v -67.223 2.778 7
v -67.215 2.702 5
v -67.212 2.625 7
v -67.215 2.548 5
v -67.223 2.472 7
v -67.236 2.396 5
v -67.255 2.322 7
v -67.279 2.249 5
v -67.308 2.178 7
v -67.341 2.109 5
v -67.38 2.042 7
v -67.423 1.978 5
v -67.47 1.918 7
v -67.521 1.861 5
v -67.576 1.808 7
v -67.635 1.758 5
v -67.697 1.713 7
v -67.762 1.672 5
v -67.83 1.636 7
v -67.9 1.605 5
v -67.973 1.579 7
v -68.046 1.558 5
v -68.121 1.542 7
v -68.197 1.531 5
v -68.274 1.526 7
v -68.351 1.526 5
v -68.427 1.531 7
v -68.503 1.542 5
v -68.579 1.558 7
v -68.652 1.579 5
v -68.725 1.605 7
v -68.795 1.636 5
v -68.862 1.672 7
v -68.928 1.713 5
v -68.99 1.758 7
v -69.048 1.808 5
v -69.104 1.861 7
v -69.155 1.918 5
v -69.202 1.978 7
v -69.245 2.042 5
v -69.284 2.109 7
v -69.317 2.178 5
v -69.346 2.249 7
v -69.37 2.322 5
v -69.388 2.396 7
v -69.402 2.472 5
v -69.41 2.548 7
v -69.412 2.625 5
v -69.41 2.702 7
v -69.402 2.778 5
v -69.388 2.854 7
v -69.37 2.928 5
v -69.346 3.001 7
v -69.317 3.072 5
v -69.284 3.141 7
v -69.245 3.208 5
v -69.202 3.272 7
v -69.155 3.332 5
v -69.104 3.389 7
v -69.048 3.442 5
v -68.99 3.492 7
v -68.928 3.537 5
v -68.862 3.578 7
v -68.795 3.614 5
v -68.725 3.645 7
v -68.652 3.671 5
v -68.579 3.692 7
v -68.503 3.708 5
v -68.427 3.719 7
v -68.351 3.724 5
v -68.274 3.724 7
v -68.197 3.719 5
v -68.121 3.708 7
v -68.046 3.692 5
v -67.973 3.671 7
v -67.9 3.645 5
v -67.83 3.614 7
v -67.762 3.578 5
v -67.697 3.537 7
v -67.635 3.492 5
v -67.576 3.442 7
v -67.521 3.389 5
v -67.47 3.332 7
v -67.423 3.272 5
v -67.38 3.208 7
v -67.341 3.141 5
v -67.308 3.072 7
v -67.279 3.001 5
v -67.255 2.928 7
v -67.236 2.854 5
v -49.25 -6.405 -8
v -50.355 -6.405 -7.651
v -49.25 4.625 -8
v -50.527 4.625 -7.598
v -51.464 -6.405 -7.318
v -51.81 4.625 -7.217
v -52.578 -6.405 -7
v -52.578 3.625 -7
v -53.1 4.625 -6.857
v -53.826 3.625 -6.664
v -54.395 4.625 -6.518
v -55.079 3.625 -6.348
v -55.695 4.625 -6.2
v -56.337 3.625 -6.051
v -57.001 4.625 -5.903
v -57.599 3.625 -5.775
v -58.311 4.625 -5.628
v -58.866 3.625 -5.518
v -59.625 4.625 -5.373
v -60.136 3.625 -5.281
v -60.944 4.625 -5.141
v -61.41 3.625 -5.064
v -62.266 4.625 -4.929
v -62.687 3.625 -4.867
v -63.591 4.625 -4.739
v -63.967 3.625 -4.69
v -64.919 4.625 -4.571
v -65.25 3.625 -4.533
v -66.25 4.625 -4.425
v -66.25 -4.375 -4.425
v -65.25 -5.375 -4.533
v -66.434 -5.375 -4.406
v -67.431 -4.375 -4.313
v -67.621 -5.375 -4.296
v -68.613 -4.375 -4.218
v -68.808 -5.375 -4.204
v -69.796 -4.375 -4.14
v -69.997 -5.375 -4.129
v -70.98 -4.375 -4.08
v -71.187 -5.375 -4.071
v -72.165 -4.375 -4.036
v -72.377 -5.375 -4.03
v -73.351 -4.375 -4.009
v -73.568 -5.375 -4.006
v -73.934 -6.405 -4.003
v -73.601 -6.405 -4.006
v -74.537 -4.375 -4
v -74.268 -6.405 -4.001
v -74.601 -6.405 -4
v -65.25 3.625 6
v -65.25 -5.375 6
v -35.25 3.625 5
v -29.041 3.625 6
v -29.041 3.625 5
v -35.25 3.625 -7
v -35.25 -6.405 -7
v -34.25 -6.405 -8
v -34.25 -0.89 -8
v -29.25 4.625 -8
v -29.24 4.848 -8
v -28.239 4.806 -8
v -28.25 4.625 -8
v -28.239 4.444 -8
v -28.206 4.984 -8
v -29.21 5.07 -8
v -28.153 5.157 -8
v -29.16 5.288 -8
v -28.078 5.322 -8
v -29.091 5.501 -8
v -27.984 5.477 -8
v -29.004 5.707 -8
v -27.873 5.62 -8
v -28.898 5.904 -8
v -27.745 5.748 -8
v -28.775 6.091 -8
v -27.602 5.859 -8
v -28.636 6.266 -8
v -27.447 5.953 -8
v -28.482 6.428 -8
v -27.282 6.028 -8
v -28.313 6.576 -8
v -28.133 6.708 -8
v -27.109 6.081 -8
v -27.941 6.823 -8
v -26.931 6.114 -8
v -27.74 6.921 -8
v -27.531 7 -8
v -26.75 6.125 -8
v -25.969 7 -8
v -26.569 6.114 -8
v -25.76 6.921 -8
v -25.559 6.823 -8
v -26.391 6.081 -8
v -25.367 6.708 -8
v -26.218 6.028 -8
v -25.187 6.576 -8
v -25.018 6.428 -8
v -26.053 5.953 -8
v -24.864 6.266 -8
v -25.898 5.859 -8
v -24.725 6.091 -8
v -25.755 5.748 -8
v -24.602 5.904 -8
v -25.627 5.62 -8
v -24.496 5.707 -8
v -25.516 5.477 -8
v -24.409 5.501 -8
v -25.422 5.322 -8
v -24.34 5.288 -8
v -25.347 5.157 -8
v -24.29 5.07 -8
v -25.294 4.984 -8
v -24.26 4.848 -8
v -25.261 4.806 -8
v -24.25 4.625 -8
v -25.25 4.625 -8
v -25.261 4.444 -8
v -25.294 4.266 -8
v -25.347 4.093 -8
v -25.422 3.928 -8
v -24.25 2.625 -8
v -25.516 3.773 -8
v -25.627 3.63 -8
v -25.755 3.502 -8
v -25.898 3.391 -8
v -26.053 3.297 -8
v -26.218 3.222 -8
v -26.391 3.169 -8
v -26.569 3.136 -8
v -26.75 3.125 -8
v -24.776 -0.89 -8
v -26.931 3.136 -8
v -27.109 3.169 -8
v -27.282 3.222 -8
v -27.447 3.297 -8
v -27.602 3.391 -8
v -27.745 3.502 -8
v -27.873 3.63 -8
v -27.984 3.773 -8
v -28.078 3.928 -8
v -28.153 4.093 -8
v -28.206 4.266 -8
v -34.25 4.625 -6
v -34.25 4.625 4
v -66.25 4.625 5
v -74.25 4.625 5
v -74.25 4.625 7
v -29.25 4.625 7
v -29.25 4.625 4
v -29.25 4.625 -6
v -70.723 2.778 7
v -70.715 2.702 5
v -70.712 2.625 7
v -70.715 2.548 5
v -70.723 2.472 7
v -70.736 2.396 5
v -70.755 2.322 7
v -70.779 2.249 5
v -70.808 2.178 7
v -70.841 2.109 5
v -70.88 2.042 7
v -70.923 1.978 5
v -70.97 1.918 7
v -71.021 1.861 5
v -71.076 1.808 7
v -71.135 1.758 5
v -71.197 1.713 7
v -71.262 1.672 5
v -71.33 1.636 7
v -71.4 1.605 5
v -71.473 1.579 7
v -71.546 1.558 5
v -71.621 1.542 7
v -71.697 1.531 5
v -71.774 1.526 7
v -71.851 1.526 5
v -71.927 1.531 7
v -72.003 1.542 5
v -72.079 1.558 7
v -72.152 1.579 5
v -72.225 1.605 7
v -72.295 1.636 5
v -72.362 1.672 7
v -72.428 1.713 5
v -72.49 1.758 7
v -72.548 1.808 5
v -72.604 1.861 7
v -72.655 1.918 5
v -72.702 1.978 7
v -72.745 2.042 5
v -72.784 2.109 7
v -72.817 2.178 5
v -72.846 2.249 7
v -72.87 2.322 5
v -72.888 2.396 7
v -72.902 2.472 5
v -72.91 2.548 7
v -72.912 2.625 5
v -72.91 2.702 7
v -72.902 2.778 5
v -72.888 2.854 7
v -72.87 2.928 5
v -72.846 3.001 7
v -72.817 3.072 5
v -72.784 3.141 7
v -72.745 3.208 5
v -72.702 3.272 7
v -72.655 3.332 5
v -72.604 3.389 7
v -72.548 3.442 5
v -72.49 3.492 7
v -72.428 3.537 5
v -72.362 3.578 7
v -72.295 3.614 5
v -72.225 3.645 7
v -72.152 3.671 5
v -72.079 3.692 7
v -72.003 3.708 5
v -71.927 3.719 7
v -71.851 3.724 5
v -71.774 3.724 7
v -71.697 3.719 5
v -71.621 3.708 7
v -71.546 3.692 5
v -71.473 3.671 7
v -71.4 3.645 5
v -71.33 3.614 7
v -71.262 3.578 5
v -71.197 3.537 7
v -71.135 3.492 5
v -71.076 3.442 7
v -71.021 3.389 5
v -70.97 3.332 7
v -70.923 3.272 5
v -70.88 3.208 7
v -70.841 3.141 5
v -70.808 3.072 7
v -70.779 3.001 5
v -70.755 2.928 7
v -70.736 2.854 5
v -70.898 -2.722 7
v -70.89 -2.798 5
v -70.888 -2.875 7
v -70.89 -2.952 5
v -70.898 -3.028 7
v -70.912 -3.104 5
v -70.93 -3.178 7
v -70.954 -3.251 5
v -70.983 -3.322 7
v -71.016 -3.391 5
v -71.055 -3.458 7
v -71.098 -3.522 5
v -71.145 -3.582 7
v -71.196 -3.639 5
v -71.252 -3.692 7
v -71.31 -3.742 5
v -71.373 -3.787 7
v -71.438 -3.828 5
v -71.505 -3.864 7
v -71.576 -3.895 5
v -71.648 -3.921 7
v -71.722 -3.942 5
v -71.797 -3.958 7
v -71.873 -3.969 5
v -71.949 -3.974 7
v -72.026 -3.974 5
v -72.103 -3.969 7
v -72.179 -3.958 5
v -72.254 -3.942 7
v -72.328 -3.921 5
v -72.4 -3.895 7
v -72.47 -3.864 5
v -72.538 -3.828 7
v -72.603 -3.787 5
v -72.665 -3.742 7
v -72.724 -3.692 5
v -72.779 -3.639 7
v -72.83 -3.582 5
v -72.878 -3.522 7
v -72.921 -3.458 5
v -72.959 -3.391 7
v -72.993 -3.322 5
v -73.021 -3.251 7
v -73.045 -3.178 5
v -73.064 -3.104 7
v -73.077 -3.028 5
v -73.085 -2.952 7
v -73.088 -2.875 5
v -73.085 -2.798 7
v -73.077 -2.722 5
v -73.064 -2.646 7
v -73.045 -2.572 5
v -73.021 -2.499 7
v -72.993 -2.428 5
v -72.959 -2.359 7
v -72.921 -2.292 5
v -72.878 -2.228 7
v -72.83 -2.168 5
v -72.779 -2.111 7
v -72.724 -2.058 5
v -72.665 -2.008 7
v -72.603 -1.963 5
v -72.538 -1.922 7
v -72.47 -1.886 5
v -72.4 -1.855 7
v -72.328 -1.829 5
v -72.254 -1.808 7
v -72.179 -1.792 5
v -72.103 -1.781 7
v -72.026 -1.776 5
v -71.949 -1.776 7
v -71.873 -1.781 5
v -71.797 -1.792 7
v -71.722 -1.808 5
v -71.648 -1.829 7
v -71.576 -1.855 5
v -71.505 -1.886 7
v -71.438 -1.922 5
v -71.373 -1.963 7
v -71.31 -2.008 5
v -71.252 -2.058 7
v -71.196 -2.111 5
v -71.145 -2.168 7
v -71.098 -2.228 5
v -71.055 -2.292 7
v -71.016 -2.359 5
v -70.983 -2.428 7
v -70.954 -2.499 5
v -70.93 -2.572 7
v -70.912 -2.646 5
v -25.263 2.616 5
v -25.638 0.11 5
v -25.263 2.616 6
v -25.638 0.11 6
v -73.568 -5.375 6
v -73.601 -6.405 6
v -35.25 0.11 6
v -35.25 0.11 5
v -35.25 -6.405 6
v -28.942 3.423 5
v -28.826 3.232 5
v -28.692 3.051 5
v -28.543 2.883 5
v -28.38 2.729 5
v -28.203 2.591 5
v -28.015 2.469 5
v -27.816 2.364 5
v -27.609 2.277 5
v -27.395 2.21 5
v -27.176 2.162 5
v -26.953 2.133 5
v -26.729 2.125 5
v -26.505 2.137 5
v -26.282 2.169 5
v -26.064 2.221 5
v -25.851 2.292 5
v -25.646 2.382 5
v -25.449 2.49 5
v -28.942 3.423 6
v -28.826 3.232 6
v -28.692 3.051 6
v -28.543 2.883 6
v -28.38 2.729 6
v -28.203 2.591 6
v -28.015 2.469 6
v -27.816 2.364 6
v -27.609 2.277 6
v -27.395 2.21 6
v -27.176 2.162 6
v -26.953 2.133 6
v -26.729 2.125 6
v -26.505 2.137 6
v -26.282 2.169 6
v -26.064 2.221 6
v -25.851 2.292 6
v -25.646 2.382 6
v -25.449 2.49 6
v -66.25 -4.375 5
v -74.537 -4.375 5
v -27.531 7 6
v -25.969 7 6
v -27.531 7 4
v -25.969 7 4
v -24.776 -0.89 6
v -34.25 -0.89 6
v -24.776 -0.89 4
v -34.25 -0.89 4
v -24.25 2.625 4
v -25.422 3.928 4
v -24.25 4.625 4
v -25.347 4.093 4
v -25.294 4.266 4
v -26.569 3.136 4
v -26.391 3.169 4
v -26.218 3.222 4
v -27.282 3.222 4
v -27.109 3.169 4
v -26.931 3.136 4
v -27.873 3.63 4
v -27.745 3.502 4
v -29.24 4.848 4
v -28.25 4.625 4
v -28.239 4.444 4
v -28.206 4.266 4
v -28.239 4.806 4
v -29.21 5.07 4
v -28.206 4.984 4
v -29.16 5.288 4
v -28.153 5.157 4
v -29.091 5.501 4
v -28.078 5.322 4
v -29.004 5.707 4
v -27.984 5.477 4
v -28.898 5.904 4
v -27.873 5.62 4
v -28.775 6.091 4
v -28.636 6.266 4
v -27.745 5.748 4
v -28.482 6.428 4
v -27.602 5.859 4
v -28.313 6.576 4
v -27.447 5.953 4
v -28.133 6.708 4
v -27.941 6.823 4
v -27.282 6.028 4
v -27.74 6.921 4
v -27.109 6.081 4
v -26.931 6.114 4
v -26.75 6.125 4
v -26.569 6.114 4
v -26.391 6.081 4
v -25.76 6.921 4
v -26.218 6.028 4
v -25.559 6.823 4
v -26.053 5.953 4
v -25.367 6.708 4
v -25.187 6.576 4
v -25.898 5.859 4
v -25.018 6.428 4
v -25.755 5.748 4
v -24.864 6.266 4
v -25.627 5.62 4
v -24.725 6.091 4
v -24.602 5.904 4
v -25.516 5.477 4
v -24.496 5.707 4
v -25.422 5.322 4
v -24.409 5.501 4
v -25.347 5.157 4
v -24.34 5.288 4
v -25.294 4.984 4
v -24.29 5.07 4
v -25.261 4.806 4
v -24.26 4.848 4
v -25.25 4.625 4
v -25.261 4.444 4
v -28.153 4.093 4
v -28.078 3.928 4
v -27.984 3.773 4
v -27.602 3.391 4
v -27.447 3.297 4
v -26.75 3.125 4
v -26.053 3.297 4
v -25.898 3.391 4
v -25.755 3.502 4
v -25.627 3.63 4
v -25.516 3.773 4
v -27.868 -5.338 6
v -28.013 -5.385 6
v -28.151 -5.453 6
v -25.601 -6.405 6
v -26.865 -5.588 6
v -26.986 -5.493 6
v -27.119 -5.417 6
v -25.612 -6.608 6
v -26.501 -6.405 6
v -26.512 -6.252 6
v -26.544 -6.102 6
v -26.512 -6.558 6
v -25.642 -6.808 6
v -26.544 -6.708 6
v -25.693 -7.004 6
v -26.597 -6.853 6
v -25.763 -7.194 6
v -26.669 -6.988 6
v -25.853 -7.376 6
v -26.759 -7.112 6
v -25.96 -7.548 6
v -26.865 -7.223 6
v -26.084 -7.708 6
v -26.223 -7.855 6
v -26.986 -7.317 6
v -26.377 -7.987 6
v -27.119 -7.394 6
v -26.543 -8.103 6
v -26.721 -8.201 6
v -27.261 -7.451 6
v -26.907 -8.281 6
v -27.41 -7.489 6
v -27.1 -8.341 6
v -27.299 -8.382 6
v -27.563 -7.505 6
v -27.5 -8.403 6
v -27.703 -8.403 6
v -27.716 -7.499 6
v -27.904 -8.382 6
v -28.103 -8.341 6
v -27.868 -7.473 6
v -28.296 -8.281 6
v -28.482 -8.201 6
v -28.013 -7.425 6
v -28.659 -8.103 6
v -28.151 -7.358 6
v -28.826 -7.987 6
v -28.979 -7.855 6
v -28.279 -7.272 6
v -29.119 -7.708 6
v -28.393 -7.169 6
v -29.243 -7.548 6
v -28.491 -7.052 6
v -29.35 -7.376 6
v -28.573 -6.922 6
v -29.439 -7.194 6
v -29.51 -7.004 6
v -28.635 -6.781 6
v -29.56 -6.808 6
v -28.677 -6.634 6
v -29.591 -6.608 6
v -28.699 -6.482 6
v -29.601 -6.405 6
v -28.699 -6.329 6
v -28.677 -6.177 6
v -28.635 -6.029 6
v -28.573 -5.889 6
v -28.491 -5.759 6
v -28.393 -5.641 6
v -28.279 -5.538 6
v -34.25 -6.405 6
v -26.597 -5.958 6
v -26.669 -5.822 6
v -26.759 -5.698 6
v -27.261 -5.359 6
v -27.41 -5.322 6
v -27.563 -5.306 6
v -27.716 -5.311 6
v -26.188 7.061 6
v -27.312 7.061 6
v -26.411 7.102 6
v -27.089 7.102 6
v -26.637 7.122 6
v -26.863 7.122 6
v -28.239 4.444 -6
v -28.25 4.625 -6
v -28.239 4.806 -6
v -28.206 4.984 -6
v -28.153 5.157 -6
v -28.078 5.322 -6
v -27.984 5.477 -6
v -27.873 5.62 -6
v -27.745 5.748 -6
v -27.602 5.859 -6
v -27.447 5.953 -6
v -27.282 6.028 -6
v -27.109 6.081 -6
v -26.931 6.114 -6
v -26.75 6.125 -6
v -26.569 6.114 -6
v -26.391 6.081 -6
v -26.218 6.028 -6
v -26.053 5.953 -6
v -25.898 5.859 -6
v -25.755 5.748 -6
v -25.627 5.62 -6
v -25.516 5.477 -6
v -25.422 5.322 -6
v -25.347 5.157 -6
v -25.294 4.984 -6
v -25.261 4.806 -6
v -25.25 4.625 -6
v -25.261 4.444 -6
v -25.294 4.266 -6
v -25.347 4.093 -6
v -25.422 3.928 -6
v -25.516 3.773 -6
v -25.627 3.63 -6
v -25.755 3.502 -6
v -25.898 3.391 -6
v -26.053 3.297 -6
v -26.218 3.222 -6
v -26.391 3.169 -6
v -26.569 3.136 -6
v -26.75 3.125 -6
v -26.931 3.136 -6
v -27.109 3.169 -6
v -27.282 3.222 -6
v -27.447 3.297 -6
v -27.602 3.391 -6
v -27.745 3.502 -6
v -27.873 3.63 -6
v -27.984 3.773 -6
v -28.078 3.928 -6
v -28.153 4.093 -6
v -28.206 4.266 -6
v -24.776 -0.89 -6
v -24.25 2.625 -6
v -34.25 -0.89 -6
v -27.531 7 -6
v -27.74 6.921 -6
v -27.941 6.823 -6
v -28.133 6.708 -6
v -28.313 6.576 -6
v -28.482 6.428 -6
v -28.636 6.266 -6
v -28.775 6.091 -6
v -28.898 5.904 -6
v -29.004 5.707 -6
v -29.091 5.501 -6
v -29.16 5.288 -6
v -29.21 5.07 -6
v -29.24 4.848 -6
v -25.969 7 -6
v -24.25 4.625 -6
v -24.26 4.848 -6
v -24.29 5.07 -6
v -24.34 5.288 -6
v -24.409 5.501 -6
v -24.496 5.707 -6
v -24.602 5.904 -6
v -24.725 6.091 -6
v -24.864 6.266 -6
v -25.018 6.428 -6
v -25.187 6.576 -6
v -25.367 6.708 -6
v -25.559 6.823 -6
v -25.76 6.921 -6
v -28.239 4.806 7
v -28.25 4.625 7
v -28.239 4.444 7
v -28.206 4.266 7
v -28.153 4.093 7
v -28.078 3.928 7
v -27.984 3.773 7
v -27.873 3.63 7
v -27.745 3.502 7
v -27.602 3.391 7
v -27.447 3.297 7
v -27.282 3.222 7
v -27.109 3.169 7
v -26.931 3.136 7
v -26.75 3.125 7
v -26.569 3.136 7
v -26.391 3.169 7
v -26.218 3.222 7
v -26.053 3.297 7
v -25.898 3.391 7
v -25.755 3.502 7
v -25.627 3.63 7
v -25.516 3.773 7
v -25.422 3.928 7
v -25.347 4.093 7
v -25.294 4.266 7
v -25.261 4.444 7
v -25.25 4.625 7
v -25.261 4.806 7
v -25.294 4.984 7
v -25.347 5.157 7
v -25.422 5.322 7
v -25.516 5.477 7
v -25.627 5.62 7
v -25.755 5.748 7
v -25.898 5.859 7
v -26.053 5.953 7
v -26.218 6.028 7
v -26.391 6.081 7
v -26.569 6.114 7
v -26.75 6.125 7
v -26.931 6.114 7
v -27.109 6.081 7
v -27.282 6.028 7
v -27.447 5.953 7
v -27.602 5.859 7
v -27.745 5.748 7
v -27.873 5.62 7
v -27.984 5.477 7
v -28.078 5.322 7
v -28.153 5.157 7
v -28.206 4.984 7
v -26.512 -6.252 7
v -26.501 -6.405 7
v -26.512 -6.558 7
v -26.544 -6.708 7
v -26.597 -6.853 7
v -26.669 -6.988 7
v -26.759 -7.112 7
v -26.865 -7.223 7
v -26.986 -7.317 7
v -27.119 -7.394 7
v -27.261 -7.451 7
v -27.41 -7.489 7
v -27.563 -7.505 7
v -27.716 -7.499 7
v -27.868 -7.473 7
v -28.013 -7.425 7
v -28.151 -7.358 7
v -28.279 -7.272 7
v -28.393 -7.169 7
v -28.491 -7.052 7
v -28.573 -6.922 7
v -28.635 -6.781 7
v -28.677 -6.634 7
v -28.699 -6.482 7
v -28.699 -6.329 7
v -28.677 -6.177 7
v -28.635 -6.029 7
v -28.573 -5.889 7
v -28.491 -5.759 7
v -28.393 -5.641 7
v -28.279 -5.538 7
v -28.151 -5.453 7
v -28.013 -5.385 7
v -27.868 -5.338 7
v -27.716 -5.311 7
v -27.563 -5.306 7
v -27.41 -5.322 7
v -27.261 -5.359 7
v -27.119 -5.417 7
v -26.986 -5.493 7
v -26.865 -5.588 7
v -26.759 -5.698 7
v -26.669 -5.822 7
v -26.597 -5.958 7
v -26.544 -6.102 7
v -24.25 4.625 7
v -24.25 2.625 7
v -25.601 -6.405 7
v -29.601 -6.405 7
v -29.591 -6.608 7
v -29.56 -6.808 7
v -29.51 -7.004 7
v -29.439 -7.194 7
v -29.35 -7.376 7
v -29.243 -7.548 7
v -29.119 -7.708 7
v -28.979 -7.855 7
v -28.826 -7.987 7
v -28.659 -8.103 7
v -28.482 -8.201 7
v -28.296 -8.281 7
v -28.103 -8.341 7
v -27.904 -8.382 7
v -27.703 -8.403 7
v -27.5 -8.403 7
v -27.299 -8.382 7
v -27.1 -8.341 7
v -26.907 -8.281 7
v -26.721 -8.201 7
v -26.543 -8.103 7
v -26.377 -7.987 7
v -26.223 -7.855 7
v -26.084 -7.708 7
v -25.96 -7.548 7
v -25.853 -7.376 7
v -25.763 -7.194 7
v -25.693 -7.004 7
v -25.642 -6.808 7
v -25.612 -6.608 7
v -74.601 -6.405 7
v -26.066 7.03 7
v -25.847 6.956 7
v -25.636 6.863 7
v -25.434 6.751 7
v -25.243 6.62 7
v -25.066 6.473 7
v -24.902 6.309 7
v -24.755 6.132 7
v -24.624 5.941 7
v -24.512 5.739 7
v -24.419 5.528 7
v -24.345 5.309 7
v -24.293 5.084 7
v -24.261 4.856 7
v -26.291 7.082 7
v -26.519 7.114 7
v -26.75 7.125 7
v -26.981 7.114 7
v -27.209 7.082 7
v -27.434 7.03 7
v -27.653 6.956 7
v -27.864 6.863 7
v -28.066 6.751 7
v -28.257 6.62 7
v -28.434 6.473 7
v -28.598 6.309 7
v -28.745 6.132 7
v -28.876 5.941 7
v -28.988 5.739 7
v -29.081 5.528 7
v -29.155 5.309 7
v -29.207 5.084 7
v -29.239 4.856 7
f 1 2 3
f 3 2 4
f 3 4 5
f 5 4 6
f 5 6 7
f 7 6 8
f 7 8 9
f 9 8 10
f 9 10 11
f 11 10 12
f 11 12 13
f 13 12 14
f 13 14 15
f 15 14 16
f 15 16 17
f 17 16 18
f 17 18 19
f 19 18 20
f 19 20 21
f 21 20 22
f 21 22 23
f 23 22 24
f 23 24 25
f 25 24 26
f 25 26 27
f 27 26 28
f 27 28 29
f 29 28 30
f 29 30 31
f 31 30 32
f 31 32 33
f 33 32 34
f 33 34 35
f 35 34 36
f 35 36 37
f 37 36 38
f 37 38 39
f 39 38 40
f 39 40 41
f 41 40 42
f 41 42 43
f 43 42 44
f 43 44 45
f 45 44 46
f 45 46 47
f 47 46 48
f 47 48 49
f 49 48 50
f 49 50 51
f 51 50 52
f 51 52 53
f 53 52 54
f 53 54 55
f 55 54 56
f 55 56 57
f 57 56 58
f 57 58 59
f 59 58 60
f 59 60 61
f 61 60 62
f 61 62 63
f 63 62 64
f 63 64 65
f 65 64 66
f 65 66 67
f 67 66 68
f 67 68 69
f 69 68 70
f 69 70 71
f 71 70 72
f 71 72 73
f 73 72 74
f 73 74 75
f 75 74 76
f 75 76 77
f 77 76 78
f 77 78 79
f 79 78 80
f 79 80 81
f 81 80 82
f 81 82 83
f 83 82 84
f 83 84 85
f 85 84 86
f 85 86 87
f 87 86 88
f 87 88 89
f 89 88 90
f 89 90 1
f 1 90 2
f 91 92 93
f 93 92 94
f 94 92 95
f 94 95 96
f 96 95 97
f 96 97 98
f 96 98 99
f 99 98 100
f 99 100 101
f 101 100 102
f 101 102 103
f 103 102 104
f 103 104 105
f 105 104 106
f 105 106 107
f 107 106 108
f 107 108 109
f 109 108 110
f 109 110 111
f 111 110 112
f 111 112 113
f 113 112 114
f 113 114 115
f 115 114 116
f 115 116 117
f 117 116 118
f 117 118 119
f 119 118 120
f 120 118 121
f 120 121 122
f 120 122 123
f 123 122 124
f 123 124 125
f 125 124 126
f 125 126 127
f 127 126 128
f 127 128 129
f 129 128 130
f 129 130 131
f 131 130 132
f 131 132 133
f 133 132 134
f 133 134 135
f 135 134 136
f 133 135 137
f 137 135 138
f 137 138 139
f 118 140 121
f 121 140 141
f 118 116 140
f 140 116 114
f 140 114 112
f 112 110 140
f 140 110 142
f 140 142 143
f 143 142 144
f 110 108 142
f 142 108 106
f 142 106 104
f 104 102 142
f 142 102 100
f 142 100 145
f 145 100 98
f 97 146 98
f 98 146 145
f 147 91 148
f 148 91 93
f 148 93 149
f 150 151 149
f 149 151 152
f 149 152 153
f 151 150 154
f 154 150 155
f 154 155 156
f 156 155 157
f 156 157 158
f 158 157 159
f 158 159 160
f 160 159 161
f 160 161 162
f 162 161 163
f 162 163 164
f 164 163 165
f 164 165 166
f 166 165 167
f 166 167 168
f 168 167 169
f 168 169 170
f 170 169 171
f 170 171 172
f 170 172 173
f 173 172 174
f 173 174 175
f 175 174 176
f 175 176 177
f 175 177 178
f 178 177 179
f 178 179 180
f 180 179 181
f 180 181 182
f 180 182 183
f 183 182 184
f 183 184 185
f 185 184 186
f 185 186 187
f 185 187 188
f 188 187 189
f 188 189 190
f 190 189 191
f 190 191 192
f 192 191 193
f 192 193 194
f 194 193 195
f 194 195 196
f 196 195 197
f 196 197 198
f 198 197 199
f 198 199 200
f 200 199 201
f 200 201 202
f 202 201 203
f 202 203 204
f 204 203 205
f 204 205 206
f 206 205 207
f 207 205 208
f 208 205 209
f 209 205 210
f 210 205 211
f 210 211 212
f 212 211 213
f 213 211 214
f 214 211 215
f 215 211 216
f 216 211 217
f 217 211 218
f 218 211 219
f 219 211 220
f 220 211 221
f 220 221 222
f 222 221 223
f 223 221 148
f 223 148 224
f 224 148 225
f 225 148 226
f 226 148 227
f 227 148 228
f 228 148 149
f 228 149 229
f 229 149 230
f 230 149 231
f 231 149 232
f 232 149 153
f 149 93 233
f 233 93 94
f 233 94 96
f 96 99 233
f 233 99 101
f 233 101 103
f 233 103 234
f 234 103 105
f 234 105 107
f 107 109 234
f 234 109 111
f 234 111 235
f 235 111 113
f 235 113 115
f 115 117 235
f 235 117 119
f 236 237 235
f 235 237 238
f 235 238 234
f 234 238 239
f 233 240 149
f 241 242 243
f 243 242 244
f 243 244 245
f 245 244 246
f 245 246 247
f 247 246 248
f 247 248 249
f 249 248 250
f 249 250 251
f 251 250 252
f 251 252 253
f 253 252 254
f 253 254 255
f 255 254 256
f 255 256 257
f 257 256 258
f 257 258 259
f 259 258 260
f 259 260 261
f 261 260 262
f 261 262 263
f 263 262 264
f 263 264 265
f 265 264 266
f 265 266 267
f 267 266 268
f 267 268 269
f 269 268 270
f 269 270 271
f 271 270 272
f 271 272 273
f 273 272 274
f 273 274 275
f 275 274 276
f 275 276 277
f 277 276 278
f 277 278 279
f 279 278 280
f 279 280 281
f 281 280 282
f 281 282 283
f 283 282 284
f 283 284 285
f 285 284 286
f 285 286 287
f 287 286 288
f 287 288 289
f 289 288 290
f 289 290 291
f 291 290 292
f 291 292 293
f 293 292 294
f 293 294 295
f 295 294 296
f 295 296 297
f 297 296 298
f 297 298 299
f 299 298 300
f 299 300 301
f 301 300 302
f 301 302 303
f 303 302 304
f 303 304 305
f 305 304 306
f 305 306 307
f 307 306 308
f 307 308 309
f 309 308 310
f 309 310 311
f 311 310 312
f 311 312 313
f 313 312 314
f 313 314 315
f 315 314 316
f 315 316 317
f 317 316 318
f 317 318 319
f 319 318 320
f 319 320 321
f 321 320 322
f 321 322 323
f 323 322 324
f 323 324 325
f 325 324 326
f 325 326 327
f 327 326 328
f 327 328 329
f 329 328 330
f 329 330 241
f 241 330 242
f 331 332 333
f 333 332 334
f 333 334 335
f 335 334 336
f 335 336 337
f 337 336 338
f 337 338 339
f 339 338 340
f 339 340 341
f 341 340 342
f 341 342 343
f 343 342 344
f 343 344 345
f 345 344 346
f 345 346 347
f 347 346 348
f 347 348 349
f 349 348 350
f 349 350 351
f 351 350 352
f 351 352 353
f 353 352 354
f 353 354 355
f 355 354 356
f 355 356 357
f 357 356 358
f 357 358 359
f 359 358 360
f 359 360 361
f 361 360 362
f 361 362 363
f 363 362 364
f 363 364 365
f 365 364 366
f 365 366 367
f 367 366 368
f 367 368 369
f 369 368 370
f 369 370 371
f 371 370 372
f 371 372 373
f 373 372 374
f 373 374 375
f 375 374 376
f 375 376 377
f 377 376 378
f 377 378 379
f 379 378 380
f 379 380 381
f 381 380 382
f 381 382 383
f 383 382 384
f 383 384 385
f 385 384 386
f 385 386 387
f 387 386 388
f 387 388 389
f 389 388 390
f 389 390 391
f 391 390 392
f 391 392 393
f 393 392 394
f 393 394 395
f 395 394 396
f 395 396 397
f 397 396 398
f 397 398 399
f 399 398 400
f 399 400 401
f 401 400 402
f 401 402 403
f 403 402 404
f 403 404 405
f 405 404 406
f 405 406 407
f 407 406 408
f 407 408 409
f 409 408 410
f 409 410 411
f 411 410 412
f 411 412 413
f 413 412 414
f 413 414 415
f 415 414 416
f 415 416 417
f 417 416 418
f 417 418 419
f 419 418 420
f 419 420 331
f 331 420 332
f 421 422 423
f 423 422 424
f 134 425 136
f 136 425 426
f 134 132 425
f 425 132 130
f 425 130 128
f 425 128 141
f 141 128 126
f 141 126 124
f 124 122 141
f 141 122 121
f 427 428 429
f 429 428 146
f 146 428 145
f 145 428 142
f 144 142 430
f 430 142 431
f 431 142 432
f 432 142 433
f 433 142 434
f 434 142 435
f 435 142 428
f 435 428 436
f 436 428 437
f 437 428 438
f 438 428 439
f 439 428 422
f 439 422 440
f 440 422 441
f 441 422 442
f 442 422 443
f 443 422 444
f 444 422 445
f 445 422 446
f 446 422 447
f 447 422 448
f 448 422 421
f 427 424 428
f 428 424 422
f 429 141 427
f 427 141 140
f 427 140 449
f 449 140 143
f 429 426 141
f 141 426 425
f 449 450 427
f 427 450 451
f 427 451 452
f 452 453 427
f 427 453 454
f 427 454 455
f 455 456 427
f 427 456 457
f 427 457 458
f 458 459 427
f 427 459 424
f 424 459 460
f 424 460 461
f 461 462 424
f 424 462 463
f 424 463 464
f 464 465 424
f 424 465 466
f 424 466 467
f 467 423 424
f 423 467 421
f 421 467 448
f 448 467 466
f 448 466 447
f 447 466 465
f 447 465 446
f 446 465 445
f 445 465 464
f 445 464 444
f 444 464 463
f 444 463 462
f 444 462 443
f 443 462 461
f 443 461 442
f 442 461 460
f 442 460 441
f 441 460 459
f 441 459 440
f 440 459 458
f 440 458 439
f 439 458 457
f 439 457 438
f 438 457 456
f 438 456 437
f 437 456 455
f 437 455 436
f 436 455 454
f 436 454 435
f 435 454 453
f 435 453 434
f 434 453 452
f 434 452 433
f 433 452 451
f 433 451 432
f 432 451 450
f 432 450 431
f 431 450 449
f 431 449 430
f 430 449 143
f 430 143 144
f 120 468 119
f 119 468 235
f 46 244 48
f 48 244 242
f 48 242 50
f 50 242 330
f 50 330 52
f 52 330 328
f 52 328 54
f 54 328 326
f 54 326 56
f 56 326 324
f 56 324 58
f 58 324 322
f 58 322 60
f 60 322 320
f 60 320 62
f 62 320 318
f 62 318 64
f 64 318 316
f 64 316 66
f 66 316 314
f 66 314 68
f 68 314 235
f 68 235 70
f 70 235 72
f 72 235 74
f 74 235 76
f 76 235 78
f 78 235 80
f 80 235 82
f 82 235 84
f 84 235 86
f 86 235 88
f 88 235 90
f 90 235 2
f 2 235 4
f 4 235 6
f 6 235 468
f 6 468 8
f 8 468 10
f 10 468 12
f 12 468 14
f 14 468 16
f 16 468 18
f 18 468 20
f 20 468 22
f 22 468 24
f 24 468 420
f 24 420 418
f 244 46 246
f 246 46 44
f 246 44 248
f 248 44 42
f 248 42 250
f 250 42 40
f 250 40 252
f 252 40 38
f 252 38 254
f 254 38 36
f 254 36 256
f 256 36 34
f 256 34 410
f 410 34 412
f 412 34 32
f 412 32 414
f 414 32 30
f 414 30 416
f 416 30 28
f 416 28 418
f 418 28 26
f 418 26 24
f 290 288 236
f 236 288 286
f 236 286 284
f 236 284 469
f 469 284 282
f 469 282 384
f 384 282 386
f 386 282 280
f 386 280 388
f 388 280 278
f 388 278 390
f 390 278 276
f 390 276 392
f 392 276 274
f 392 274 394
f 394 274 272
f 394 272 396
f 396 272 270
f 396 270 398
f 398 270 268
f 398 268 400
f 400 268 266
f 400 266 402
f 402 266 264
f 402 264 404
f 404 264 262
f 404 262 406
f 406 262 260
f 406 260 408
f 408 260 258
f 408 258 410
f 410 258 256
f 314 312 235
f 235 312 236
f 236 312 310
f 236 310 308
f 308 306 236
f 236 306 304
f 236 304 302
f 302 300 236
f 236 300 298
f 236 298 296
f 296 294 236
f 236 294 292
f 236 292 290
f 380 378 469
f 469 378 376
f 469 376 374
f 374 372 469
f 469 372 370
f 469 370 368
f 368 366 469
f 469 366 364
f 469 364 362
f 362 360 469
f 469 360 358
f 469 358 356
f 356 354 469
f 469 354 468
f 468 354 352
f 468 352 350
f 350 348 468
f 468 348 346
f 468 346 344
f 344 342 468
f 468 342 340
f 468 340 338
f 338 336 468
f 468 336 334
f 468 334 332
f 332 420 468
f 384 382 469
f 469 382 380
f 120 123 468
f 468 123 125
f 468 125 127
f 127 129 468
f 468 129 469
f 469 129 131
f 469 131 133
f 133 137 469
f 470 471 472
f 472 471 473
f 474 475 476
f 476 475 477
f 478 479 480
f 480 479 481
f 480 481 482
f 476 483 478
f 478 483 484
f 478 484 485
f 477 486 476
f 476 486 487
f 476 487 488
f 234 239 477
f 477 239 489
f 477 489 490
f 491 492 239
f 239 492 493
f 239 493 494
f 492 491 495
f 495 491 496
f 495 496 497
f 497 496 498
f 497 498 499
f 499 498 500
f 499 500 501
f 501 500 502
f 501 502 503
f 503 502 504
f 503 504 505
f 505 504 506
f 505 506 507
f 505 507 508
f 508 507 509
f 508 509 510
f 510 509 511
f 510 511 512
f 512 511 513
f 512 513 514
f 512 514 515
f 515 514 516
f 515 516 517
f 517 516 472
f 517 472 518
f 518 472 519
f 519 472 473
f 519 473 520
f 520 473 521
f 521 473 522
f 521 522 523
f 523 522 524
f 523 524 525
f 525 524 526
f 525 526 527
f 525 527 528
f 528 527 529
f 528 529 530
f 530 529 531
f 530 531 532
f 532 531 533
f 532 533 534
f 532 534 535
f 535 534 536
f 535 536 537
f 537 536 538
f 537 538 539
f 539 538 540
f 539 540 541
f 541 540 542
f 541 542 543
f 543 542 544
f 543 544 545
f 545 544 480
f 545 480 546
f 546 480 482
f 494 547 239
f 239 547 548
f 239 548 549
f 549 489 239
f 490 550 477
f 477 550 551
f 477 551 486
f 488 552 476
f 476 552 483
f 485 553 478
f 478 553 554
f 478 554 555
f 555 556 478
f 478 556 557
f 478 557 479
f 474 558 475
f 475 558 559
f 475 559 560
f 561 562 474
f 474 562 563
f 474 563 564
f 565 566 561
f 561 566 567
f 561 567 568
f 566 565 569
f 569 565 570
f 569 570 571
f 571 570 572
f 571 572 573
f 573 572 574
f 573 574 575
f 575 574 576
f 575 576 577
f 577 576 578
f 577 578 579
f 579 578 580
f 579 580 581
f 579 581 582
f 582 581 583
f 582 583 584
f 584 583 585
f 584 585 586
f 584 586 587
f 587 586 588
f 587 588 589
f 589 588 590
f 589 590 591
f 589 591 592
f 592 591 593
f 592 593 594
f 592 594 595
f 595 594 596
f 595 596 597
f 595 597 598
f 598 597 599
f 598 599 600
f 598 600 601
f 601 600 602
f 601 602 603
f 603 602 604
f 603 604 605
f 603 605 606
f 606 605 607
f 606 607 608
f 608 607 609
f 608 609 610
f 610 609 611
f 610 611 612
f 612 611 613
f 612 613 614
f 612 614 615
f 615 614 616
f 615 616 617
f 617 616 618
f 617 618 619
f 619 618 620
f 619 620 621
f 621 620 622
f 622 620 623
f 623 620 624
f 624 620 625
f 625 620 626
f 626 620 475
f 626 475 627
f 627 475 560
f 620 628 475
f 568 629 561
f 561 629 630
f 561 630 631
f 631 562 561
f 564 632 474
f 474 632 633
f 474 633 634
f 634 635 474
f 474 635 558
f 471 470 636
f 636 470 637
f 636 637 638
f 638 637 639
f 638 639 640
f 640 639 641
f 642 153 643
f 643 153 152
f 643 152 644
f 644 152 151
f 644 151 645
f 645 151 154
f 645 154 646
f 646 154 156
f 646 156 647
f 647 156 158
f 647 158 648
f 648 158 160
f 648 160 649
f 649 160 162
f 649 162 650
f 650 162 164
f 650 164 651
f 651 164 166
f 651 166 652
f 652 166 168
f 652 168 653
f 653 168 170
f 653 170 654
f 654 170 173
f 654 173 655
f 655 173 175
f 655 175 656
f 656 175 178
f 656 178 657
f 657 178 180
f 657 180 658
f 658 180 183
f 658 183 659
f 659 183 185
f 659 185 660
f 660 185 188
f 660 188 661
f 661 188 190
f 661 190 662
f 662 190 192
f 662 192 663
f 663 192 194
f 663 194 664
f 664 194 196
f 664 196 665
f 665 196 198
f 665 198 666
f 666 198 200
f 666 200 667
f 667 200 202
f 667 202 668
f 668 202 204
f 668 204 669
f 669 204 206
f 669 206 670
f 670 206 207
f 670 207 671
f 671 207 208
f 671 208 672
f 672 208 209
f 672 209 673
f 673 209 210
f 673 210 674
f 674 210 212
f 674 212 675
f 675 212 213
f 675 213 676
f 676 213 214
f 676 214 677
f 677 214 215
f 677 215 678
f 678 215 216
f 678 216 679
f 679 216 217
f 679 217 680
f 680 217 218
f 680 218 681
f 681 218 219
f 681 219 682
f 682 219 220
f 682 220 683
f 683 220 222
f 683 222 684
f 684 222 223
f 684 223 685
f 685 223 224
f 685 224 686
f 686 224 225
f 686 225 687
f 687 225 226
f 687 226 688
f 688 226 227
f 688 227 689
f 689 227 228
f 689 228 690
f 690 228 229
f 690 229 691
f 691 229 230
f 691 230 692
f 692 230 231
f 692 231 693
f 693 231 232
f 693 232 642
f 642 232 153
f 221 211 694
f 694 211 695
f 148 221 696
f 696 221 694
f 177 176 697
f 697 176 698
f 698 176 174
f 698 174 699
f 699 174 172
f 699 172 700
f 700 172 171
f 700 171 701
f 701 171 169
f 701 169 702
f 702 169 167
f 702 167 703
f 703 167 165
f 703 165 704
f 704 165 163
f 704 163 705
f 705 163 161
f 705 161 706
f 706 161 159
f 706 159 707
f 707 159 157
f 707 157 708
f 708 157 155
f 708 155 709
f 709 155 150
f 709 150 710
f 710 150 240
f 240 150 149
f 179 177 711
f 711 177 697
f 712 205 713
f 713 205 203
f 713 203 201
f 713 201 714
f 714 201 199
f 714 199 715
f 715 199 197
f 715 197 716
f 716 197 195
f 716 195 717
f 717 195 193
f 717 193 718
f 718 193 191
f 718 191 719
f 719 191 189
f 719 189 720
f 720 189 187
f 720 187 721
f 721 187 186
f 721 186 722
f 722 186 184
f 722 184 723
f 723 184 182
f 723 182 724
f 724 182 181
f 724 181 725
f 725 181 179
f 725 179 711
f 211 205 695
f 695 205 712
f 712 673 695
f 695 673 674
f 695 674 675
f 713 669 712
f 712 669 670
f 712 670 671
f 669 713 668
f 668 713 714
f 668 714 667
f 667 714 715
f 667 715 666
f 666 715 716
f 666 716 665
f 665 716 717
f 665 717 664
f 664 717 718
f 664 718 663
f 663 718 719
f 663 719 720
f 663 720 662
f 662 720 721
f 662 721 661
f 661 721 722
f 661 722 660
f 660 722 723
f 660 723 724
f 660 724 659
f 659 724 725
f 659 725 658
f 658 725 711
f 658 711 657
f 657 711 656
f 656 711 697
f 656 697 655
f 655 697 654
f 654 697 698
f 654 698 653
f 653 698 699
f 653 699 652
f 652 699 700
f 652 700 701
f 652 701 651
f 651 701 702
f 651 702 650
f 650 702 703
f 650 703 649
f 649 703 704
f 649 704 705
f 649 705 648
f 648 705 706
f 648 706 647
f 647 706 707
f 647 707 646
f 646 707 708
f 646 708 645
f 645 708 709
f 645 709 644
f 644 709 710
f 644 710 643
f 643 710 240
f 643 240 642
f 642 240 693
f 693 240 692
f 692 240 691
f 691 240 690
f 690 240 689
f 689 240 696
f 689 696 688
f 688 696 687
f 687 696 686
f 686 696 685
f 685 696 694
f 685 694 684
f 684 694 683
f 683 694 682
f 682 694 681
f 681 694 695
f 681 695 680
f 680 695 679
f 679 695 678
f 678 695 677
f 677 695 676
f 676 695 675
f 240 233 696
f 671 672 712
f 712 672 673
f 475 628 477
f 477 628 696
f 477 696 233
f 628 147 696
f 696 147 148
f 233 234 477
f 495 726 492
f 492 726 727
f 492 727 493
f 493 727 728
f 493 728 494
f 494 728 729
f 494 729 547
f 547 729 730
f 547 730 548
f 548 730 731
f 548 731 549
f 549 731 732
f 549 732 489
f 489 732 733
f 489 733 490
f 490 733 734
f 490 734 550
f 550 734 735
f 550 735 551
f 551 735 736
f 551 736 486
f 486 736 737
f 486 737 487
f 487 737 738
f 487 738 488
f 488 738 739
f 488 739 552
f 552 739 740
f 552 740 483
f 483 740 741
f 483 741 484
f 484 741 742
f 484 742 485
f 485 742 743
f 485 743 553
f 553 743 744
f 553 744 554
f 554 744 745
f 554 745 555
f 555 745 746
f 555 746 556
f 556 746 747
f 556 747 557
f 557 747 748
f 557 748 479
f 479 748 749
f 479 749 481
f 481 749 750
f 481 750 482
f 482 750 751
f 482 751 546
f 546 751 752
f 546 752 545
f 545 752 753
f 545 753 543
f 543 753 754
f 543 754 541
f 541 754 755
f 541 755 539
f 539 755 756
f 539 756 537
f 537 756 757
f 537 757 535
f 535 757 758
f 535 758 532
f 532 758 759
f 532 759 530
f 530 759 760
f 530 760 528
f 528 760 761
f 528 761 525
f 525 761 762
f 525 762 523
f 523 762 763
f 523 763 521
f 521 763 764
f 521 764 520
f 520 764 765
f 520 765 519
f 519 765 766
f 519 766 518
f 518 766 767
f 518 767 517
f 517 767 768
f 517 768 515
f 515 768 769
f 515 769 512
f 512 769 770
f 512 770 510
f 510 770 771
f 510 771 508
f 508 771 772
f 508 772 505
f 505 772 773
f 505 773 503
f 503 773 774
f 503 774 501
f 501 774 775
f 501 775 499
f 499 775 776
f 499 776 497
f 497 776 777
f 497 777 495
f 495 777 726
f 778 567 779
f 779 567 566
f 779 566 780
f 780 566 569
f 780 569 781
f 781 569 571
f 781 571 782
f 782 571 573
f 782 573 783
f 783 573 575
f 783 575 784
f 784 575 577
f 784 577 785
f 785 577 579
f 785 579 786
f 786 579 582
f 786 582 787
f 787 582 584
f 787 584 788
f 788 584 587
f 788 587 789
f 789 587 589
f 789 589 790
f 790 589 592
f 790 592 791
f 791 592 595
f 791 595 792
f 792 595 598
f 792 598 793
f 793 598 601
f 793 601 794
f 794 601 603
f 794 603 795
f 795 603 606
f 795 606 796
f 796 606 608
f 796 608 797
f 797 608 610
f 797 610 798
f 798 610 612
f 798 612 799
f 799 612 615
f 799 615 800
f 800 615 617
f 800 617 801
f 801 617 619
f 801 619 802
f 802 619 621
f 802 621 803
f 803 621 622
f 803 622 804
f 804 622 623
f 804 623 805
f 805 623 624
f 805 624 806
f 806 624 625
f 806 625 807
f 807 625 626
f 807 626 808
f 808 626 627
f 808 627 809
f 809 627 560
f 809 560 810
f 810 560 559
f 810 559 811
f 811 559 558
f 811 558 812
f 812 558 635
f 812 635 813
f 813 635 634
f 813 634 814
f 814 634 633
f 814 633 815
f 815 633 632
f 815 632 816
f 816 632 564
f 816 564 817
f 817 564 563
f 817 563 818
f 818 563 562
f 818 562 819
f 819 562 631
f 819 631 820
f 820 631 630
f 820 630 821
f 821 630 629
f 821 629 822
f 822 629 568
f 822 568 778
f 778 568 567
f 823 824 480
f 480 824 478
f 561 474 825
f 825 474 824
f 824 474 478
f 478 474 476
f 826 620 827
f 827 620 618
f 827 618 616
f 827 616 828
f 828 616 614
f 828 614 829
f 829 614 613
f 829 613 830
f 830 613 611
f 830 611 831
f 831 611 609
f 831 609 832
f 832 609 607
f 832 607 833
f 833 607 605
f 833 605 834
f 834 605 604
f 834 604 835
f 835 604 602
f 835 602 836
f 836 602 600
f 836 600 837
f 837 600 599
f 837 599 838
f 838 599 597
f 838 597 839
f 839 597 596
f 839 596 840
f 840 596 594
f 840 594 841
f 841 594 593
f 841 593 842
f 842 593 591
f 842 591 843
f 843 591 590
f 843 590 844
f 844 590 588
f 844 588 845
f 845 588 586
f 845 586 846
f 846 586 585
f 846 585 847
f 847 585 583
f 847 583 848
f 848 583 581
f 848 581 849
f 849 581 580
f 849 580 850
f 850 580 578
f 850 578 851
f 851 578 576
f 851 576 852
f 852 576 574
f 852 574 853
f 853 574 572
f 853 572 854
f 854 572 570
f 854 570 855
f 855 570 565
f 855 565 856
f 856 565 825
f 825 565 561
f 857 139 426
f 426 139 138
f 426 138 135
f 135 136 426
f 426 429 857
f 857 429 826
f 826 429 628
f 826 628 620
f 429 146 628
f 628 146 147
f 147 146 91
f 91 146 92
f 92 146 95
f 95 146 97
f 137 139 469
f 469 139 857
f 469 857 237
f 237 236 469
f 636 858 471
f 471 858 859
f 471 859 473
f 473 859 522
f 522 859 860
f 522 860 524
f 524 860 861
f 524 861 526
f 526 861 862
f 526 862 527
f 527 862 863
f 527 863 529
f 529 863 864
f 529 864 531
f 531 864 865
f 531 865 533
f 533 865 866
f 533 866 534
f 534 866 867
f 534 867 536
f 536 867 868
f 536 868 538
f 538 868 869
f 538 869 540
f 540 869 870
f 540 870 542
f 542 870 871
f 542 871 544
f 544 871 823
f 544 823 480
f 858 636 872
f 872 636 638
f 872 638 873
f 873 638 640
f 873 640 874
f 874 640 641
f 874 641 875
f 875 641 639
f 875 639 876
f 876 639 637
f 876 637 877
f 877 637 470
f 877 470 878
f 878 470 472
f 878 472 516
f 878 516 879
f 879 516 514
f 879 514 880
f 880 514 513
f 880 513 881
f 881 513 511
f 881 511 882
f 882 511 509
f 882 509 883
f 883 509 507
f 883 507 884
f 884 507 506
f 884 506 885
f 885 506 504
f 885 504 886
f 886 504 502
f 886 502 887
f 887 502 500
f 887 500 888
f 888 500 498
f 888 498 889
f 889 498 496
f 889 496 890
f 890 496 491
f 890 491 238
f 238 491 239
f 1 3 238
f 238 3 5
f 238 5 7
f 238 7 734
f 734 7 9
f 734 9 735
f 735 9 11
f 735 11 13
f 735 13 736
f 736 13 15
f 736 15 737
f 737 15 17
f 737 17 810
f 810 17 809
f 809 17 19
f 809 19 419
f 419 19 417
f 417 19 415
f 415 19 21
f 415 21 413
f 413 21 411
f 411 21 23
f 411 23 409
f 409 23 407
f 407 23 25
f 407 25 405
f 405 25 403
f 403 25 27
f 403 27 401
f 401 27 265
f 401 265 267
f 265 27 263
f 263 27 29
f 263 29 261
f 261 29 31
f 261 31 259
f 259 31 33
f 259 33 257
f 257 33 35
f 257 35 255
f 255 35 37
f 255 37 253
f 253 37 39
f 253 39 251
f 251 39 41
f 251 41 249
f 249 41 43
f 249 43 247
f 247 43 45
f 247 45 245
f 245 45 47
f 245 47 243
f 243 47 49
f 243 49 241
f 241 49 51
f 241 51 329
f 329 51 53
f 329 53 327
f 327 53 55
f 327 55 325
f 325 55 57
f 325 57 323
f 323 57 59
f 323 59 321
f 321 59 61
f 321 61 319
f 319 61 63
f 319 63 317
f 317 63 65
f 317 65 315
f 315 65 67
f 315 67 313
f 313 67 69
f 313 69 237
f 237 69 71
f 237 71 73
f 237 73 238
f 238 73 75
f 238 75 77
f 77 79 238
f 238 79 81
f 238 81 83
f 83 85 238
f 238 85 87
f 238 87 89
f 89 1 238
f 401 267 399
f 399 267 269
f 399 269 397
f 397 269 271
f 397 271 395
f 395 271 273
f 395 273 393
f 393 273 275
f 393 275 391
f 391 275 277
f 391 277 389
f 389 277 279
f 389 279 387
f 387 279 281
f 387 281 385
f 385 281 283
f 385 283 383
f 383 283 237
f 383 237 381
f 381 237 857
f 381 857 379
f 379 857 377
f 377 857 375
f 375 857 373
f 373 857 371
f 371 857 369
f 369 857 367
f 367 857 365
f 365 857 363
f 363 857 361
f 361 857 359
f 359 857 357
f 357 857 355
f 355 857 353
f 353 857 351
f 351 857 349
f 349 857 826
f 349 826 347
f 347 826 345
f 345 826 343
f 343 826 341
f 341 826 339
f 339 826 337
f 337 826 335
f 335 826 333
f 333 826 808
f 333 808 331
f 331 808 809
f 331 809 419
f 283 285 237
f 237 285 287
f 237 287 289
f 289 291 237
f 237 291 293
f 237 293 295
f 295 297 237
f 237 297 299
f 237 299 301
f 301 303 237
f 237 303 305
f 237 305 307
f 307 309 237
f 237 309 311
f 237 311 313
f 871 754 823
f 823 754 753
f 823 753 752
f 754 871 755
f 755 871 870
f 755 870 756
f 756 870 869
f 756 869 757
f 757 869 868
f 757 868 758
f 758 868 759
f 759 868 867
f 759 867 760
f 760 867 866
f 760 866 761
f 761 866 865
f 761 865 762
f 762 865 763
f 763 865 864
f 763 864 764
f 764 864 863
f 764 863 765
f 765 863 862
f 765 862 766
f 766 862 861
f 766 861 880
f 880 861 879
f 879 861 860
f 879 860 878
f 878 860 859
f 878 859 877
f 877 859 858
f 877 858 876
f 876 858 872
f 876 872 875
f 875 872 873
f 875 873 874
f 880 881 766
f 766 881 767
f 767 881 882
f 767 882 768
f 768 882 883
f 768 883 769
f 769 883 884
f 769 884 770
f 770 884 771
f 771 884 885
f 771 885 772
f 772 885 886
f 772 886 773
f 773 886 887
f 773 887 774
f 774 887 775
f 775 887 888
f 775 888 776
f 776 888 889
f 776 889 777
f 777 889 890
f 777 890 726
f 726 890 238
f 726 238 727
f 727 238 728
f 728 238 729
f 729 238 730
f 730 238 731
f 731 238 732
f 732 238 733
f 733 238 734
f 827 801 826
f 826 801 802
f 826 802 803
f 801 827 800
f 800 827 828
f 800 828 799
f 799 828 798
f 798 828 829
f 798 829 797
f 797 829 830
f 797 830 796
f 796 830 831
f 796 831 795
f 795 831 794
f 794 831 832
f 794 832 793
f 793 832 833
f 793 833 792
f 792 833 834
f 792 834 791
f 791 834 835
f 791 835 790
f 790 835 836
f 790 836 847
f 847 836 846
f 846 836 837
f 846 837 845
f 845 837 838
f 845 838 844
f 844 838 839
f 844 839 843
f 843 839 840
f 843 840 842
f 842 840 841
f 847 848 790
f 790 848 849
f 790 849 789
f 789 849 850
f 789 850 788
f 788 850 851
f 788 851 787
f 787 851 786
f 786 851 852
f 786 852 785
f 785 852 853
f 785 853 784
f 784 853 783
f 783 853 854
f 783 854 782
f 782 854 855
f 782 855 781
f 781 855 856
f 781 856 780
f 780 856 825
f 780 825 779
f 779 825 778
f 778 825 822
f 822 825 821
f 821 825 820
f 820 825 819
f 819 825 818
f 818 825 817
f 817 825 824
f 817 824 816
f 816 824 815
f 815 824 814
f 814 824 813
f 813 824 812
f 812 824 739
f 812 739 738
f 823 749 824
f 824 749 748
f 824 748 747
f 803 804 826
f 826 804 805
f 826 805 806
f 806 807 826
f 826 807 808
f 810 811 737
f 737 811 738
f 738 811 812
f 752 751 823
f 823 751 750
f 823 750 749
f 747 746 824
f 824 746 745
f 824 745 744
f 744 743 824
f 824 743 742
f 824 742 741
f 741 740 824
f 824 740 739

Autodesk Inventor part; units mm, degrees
ref_plane "YZ Plane" through (0, 0, 0) normal (1, 0, 0) x (0, 1, 0)
ref_plane "XZ Plane" through (0, 0, 0) normal (0, 1, 0) x (-1, 0, 0)
ref_plane "XY Plane" through (0, 0, 0) normal (0, 0, 1) x (1, 0, 0)
ref_plane "Work Plane1" through (-21.75, 2.25, -0.6) normal (0, 0, 1) x (-1, 0, 0)
ref_plane "Work Plane2" through (-30.217, -5.375, 6) normal (0, 0, 1) x (1, 0, 0)
sketch "Sketch1" plane through (-30.217, -5.375, 6) normal (0, 0, 1) x (1, 0, 0)
  circle A0 centre (2.6155, -1.0303) radius 1.1 projected
  circle A1 centre (3.467, 10) radius 1.5 projected
  line L0 (4.6155, -1.0303) -> (5.967, 8)
  line L1 (0.6155, -1.0303) -> (-44.3845, -1.0303)
  arc A2 (0.6155, -1.0303) -> (4.6155, -1.0303) centre (2.6155, -1.0303) ccw
  line L2 (5.967, 8) -> (5.967, 10)
  line L3 (0.967, 10) -> (-44.033, 10)
  arc A3 (5.967, 10) -> (0.967, 10) centre (3.467, 10) ccw
  line L4 (-44.033, 10) -> (-44.3845, -1.0303)
  point P0 (30.217, 5.375)
  dimension "d0" = 2
  dimension "d1" = 2
  dimension "d2" = 2
  dimension "d3" = 2.5
  dimension "d4" = 2
  dimension "d5" = 2.5
  dimension "d6" = 2.5
  dimension "d7" = 45
  dimension "d8" = 45
extrude "Extrusion1" add sketch "Sketch1" along normal blind 1
sketch "Sketch2" plane through (-30.217, -5.375, 6) normal (0, 0, -1) x (-1, 0, 0)
  arc A0 (-0.967, 10) -> (-5.967, 10) centre (-3.467, 10) ccw projected
  line L0 (-5.967, 8) -> (-5.967, 10) projected
  line L1 (-4.6155, -1.0303) -> (-5.967, 8) projected
  arc A1 (-4.6155, -1.0303) -> (-0.6155, -1.0303) centre (-2.6155, -1.0303) ccw projected
  line L2 (44.3845, -1.0303) -> (-0.6155, -1.0303) projected
  line L3 (44.033, 10) -> (44.3845, -1.0303) projected
  line L4 (-0.967, 10) -> (44.033, 10) projected
  circle A2 centre (-2.6155, -1.0303) radius 1.1 projected
  circle A3 centre (-3.467, 10) radius 1.5 projected
  line L5 (44.3845, -1.0303) -> (-0.6155, -1.0303) projected
  line L6 (4.033, -1.0303) -> (4.033, 10)
  line L7 (-0.967, 10) -> (44.033, 10) projected
  point P0 (-30.217, 5.375)
  point P1 (4.033, 10)
  point P2 (4.033, -1.0303)
  dimension "d11" = 5
extrude "Extrusion2" add sketch "Sketch2" along normal blind 14 contours L4 L3 L2 L6
sketch "Sketch3" plane through (-30.217, -5.375, -8) normal (0, 0, -1) x (-1, 0, 0)
  circle A0 centre (-3.467, 10) radius 1.5 projected
  line L0 (-8.467, 7.625) -> (-8.467, 12.375) projected
  line L1 (-8.467, 7.625) -> (-0.967, 7.625) projected
  line L2 (-0.967, 12.375) -> (-0.967, 7.625) projected
  line L3 (-8.467, 12.375) -> (-0.967, 12.375) projected
  line L4 (44.033, 10) -> (4.033, 10) projected
  line L5 (4.033, 10) -> (4.033, -1.0303) projected
  line L6 (4.033, -1.0303) -> (44.3845, -1.0303) projected
  line L7 (44.3845, -1.0303) -> (44.033, 10) projected
  circle A1 centre (-3.467, 10) radius 1.5 projected
  circle A2 centre (-2.6155, -1.0303) radius 1.1 projected
  line L8 (4.033, -1.0303) -> (4.033, 10) projected
  line L9 (-0.967, 10) -> (4.033, 10) projected
  arc A3 (-0.967, 10) -> (-5.967, 10) centre (-3.467, 10) ccw projected
  line L10 (-5.967, 8) -> (-5.967, 10) projected
  line L11 (-4.6155, -1.0303) -> (-5.967, 8) projected
  arc A4 (-4.6155, -1.0303) -> (-0.6155, -1.0303) centre (-2.6155, -1.0303) ccw projected
  line L12 (4.033, -1.0303) -> (-0.6155, -1.0303) projected
  line L13 (4.033, 10) -> (4.033, -1.0303) projected
  line L14 (4.033, 4.4849) -> (-5.4409, 4.4849)
  line L15 (-4.6155, -1.0303) -> (-5.967, 8) projected
  point P0 (-30.217, 5.375)
  point P1 (-5.4409, 4.4849)
  point P2 (-2.6863, 12.375)
  point P3 (-4.2476, 12.375)
extrude "Extrusion3" add sketch "Sketch3" against normal blind 2 contours L11 L10 A3 L3 L2 L1 | L1 L2 L9 L5 L14 L11
sketch "Sketch4" plane through (-30.217, -5.375, 6) normal (0, 0, -1) x (-1, 0, 0)
  circle A0 centre (-3.467, 10) radius 1.5 projected
  circle A1 centre (-2.6155, -1.0303) radius 1.1 projected
  line L0 (4.033, -1.0303) -> (4.033, 10) projected
  line L1 (-0.967, 10) -> (4.033, 10) projected
  arc A2 (-0.967, 10) -> (-5.967, 10) centre (-3.467, 10) ccw projected
  line L2 (-5.967, 8) -> (-5.967, 10) projected
  line L3 (-4.6155, -1.0303) -> (-5.967, 8) projected
  arc A3 (-4.6155, -1.0303) -> (-0.6155, -1.0303) centre (-2.6155, -1.0303) ccw projected
  line L4 (4.033, -1.0303) -> (-0.6155, -1.0303) projected
  circle A4 centre (-3.467, 10) radius 1.5 projected
  circle A5 centre (-3.467, 10) radius 2.5
  arc A6 (-0.967, 10) -> (-5.967, 10) centre (-3.467, 10) ccw projected
  circle A7 centre (-3.467, 10) radius 1.5 projected
  line L5 (44.033, 10) -> (-0.967, 10) projected
  arc A8 (-0.967, 10) -> (-2.6863, 12.375) centre (-3.467, 10) ccw projected
  line L6 (-2.6863, 12.375) -> (-4.2476, 12.375) projected
  arc A9 (-4.2476, 12.375) -> (-5.967, 10) centre (-3.467, 10) ccw projected
  line L7 (-5.967, 10) -> (-5.967, 8) projected
  line L8 (-5.967, 8) -> (-5.4409, 4.4849) projected
  line L9 (-5.4409, 4.4849) -> (4.033, 4.4849) projected
  line L10 (4.033, 4.4849) -> (4.033, -1.0303) projected
  line L11 (4.033, -1.0303) -> (44.3845, -1.0303) projected
  line L12 (44.3845, -1.0303) -> (44.033, 10) projected
  point P0 (-30.217, 5.375)
extrude "Extrusion4" add sketch "Sketch4" along normal blind 2 contours L9 L3 L2 A5 L1 L0 | A5 A2 L6
sketch "Sketch5" plane through (-74.25, 4.625, 7) normal (0, 1, 0) x (1, 0, 0)
  line L0 (45, 3) -> (45, 0) projected
  line L1 (40, 3) -> (45, 3) projected
  line L2 (40, 3) -> (40, 13) projected
  line L3 (45, 13) -> (40, 13) projected
  line L4 (45, 15) -> (45, 13) projected
  line L5 (0, 15) -> (45, 15) projected
  line L6 (0, 15) -> (0, 0) projected
  line L7 (45, 0) -> (0, 0) projected
  line L8 (8, 13) -> (-0.5, 13)
  line L9 (-0.5, 13) -> (-0.5, 2)
  line L10 (-0.5, 2) -> (8, 2)
  line L11 (8, 2) -> (8, 13)
  point P0 (74.25, 7)
  point P1 (8, 7.5)
  point P2 (0, 7.5)
  dimension "d18" = 8
  dimension "d19" = 0.5
  dimension "d20" = 2
extrude "Extrusion5" cut sketch "Sketch5" against normal blind 9 contours L10 L9 L8 L6 | L6 L8 L11 L10
shell "Shell1" thickness 1 removed faces 1 at (-61.1509, -6.4053, 1.6667)
sketch "Sketch6" plane through (-30.217, -5.375, 7) normal (0, 0, 1) x (1, 0, 0)
  circle A0 centre (-41.7707, 2.5) radius 1.1
  line L0 (-44.033, 10) -> (-44.3845, -1.0303) construction
  point P0 (30.217, 5.375)
  point P1 (-44.3198, 1)
  dimension "d24" = 2.2
  dimension "d25" = 1.5
  dimension "d26" = 2.5
extrude "Extrusion6" cut sketch "Sketch6" against normal up to surface (2 mm away)
sketch "Sketch7" plane through (-30.217, -5.375, 7) normal (0, 0, 1) x (1, 0, 0)
  circle A0 centre (-41.5955, 8) radius 1.1
  circle A1 centre (-41.7707, 2.5) radius 1.1 construction
  line L0 (-44.033, 10) -> (-44.3845, -1.0303) construction
  line L1 (0.967, 10) -> (-44.033, 10) construction
  point P0 (30.217, 5.375)
  dimension "d29" = 2.2
  dimension "d30" = 2.5
  dimension "d31" = 2
extrude "Extrusion7" cut sketch "Sketch7" against normal up to surface (2 mm away)
sketch "Sketch8" plane through (-74.25, 4.625, 7) normal (0, 1, 0) x (1, 0, 0)
  line L0 (0, 13) -> (8, 13) projected
  line L1 (8, 13) -> (8, 2) projected
  line L2 (8, 2) -> (0, 2) projected
  line L3 (0, 2) -> (0, 0) projected
  line L4 (45, 0) -> (0, 0) projected
  line L5 (45, 3) -> (45, 0) projected
  line L6 (40, 3) -> (45, 3) projected
  line L7 (40, 3) -> (40, 13) projected
  line L8 (45, 13) -> (40, 13) projected
  line L9 (45, 15) -> (45, 13) projected
  line L10 (0, 15) -> (45, 15) projected
  line L11 (0, 15) -> (0, 13) projected
  line L12 (-0.2867, 2) -> (-0.2867, 13) projected
  line L13 (8, 2) -> (-0.2867, 2) projected
  line L14 (8, 13) -> (8, 2) projected
  line L15 (-0.2867, 13) -> (8, 13) projected
  line L16 (-0.3514, 15) -> (-0.3514, 0) projected
  line L17 (0, 15) -> (45, 15) projected
  arc A0 (-0.3514, 11) -> (25, 15) centre (-0.3514, 93.3367) ccw
  line L18 (-0.3514, 15) -> (0, 15) projected
  point P0 (74.25, 7)
  point P1 (25, 15)
  dimension "d34" = 20
  dimension "d35" = 4
extrude "Extrusion8" cut sketch "Sketch8" against normal up to next contours L11 L10 A0 L1 L0 | L15 L12 A0 L16 L18 L11 | L0 L1 A0 L12 L15
sketch "Sketch9" plane through (-30.217, -5.375, 7) normal (0, 0, 1) x (1, 0, 0)
  circle A0 centre (-41.5955, 8) radius 1.1 projected
  circle A1 centre (-41.7707, 2.5) radius 1.1 projected
  arc A2 (5.967, 10) -> (0.967, 10) centre (3.467, 10) ccw projected
  line L0 (0.967, 10) -> (-44.033, 10) projected
  line L1 (-44.033, 10) -> (-44.3845, -1.0303) projected
  line L2 (-44.3845, -1.0303) -> (0.6155, -1.0303) projected
  arc A3 (0.6155, -1.0303) -> (4.6155, -1.0303) centre (2.6155, -1.0303) ccw projected
  line L3 (4.6155, -1.0303) -> (5.967, 8) projected
  line L4 (5.967, 8) -> (5.967, 10) projected
  circle A4 centre (2.6155, -1.0303) radius 1.1 projected
  circle A5 centre (3.467, 10) radius 1.5 projected
  circle A6 centre (-38.0955, 8) radius 1.1
  point P0 (30.217, 5.375)
  dimension "d38" = 2.2
  dimension "d39" = 3.5
extrude "Extrusion9" cut sketch "Sketch9" against normal up to surface (2 mm away) contours A6
sketch "Sketch10" plane through (-30.217, -5.375, -8) normal (0, 0, -1) x (-1, 0, 0)
  circle A0 centre (-2.6155, -1.0303) radius 1.1 construction
  circle A1 centre (-3.467, 10) radius 1.5 construction
  circle A2 centre (-2.6155, -1.0303) radius 11.0631 construction
  point P0 (-30.217, 5.375)
properties part number "Dedo_1"
